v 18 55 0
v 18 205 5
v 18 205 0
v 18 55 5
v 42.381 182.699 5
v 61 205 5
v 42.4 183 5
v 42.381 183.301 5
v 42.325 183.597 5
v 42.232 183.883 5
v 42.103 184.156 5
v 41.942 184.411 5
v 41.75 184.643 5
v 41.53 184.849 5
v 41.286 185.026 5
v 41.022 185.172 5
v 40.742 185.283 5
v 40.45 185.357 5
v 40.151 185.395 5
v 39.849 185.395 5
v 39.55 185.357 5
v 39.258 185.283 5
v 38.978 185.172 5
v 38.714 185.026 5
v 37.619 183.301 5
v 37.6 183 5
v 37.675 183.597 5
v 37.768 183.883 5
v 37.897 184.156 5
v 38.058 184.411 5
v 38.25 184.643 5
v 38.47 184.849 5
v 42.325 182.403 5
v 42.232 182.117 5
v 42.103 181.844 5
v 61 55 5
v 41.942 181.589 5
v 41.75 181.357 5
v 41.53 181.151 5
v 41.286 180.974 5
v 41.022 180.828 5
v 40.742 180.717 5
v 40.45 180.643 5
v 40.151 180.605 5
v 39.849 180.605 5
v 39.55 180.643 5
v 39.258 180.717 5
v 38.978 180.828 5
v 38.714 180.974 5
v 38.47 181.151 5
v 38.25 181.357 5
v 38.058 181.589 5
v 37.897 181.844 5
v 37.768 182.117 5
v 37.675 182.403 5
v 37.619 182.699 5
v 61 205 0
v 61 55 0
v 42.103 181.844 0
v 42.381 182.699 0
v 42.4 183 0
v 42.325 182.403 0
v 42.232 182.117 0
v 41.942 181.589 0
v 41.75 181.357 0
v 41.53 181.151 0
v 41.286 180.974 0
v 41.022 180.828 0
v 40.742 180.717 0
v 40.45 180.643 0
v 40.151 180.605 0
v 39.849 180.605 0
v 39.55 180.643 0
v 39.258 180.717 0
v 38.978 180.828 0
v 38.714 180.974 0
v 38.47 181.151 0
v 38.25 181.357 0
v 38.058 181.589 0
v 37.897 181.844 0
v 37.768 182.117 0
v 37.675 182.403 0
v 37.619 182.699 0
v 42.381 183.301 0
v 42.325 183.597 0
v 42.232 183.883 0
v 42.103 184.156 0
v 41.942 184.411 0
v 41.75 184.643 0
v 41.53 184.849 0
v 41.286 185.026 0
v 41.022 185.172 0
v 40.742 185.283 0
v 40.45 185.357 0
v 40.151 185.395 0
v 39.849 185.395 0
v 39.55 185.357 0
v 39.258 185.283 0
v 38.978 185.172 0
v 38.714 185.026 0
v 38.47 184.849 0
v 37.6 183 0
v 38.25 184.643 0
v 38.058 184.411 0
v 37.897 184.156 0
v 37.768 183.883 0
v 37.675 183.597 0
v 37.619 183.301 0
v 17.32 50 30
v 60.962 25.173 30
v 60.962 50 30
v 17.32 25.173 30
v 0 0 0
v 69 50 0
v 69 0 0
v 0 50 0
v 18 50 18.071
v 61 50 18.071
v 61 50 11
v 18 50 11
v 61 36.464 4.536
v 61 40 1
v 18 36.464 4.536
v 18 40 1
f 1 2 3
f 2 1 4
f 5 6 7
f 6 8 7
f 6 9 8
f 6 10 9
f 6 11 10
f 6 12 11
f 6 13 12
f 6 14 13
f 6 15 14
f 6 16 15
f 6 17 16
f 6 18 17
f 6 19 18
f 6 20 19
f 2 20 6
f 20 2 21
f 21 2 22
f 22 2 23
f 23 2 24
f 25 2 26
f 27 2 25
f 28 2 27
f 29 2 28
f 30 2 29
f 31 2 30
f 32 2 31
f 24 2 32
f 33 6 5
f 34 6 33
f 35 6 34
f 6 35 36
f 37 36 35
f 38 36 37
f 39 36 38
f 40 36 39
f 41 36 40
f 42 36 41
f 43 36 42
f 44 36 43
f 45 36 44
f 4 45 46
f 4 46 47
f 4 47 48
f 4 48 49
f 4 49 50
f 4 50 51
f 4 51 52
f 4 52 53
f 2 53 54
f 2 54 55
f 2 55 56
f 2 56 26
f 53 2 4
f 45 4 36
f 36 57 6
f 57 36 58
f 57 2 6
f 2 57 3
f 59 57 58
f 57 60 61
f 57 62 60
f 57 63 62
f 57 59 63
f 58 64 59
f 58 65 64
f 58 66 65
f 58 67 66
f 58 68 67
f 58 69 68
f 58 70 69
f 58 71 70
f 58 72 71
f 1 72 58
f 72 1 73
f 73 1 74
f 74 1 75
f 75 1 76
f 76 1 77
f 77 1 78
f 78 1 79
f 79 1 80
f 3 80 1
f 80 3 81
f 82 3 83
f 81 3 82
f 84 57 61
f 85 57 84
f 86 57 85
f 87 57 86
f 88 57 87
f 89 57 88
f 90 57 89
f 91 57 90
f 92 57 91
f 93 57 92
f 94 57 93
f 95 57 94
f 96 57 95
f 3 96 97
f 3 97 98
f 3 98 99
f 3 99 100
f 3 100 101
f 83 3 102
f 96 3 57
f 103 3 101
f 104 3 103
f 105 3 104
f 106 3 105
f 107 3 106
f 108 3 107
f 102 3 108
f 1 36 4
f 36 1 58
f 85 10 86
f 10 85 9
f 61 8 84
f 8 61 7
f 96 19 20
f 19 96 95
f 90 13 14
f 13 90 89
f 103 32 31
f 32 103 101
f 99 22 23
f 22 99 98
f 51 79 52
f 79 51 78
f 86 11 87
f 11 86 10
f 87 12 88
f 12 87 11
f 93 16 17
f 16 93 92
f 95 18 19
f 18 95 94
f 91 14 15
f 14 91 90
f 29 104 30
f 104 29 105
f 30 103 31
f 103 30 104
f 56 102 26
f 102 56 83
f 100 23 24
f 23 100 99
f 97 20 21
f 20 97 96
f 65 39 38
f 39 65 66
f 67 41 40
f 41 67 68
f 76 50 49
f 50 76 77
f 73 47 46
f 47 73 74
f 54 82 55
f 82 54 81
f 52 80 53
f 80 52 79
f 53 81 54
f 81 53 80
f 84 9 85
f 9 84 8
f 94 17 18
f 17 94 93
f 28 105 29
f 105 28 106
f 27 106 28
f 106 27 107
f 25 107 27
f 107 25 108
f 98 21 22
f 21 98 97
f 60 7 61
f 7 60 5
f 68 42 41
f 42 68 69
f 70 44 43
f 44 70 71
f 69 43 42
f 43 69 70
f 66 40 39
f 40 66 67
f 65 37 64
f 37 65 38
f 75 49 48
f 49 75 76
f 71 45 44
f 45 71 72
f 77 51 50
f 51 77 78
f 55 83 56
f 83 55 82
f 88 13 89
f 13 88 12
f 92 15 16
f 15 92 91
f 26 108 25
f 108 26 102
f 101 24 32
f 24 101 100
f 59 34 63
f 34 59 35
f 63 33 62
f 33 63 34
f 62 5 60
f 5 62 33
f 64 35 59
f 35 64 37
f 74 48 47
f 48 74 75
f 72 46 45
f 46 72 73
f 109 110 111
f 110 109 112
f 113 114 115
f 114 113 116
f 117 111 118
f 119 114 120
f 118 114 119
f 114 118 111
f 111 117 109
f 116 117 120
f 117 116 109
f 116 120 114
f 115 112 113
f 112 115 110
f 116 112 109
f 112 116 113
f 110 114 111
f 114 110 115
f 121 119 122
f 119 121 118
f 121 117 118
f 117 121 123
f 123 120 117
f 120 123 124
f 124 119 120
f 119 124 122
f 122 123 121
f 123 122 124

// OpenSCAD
// Customize invocations the invocations (which follow
// the modules declarations) at the bottom of the file.

// To get these to print the fine features created
// by the "text" command, I set "Outer wall" to
// 0.22mm.

w = 1;
inch = 25.4;
$fn=50;

// This thing is a nightmare to describe, so let's set an origin
// at the widest part, nearest the driver, at the bottom. Call that
// the origin. Call it also the "front left bottom" of the object.
flb = [0, 0, 0]; // Front left bottom
// The front face is 69 mm wide, rises to 32 mm, and is tipped back
// to -20mm at the top.
frontxlen = 69;
frontylen = 40;
frontzlen = 30;

// Start with a rectangular solid. Subtract from it suitably
// rotated rectangular solids until the shape is approximated.
// (This bit is buried in the dash.)
difference () {
    cube([frontxlen, frontylen+10, frontzlen]);
    rotate([50, 0, 0]) cube([frontxlen*1.5, frontylen*1.5, frontzlen*1.5]);
    rotate([0, -60, 0]) cube([frontxlen*1.5, frontylen*1.5, frontzlen*1.5]);
    translate([frontxlen, 0, 0])
        rotate([0, -15, 0])
            cube([frontxlen*1.5, frontylen*1.5, frontzlen*1.5]);
    translate([18, frontylen, 1])
        rotate([45, 0, 0])
            cube([43, 150, 5]);
}
// Now attempt a tower for the phone to mount onto.
translate([18, frontylen+15, 0]) 
//    rotate([50, 0, 0])
        difference() {
            cube([43, 150, 5]);
            translate([22, 150-22, 0])
                cylinder(r=2.4, h=5);
        }
